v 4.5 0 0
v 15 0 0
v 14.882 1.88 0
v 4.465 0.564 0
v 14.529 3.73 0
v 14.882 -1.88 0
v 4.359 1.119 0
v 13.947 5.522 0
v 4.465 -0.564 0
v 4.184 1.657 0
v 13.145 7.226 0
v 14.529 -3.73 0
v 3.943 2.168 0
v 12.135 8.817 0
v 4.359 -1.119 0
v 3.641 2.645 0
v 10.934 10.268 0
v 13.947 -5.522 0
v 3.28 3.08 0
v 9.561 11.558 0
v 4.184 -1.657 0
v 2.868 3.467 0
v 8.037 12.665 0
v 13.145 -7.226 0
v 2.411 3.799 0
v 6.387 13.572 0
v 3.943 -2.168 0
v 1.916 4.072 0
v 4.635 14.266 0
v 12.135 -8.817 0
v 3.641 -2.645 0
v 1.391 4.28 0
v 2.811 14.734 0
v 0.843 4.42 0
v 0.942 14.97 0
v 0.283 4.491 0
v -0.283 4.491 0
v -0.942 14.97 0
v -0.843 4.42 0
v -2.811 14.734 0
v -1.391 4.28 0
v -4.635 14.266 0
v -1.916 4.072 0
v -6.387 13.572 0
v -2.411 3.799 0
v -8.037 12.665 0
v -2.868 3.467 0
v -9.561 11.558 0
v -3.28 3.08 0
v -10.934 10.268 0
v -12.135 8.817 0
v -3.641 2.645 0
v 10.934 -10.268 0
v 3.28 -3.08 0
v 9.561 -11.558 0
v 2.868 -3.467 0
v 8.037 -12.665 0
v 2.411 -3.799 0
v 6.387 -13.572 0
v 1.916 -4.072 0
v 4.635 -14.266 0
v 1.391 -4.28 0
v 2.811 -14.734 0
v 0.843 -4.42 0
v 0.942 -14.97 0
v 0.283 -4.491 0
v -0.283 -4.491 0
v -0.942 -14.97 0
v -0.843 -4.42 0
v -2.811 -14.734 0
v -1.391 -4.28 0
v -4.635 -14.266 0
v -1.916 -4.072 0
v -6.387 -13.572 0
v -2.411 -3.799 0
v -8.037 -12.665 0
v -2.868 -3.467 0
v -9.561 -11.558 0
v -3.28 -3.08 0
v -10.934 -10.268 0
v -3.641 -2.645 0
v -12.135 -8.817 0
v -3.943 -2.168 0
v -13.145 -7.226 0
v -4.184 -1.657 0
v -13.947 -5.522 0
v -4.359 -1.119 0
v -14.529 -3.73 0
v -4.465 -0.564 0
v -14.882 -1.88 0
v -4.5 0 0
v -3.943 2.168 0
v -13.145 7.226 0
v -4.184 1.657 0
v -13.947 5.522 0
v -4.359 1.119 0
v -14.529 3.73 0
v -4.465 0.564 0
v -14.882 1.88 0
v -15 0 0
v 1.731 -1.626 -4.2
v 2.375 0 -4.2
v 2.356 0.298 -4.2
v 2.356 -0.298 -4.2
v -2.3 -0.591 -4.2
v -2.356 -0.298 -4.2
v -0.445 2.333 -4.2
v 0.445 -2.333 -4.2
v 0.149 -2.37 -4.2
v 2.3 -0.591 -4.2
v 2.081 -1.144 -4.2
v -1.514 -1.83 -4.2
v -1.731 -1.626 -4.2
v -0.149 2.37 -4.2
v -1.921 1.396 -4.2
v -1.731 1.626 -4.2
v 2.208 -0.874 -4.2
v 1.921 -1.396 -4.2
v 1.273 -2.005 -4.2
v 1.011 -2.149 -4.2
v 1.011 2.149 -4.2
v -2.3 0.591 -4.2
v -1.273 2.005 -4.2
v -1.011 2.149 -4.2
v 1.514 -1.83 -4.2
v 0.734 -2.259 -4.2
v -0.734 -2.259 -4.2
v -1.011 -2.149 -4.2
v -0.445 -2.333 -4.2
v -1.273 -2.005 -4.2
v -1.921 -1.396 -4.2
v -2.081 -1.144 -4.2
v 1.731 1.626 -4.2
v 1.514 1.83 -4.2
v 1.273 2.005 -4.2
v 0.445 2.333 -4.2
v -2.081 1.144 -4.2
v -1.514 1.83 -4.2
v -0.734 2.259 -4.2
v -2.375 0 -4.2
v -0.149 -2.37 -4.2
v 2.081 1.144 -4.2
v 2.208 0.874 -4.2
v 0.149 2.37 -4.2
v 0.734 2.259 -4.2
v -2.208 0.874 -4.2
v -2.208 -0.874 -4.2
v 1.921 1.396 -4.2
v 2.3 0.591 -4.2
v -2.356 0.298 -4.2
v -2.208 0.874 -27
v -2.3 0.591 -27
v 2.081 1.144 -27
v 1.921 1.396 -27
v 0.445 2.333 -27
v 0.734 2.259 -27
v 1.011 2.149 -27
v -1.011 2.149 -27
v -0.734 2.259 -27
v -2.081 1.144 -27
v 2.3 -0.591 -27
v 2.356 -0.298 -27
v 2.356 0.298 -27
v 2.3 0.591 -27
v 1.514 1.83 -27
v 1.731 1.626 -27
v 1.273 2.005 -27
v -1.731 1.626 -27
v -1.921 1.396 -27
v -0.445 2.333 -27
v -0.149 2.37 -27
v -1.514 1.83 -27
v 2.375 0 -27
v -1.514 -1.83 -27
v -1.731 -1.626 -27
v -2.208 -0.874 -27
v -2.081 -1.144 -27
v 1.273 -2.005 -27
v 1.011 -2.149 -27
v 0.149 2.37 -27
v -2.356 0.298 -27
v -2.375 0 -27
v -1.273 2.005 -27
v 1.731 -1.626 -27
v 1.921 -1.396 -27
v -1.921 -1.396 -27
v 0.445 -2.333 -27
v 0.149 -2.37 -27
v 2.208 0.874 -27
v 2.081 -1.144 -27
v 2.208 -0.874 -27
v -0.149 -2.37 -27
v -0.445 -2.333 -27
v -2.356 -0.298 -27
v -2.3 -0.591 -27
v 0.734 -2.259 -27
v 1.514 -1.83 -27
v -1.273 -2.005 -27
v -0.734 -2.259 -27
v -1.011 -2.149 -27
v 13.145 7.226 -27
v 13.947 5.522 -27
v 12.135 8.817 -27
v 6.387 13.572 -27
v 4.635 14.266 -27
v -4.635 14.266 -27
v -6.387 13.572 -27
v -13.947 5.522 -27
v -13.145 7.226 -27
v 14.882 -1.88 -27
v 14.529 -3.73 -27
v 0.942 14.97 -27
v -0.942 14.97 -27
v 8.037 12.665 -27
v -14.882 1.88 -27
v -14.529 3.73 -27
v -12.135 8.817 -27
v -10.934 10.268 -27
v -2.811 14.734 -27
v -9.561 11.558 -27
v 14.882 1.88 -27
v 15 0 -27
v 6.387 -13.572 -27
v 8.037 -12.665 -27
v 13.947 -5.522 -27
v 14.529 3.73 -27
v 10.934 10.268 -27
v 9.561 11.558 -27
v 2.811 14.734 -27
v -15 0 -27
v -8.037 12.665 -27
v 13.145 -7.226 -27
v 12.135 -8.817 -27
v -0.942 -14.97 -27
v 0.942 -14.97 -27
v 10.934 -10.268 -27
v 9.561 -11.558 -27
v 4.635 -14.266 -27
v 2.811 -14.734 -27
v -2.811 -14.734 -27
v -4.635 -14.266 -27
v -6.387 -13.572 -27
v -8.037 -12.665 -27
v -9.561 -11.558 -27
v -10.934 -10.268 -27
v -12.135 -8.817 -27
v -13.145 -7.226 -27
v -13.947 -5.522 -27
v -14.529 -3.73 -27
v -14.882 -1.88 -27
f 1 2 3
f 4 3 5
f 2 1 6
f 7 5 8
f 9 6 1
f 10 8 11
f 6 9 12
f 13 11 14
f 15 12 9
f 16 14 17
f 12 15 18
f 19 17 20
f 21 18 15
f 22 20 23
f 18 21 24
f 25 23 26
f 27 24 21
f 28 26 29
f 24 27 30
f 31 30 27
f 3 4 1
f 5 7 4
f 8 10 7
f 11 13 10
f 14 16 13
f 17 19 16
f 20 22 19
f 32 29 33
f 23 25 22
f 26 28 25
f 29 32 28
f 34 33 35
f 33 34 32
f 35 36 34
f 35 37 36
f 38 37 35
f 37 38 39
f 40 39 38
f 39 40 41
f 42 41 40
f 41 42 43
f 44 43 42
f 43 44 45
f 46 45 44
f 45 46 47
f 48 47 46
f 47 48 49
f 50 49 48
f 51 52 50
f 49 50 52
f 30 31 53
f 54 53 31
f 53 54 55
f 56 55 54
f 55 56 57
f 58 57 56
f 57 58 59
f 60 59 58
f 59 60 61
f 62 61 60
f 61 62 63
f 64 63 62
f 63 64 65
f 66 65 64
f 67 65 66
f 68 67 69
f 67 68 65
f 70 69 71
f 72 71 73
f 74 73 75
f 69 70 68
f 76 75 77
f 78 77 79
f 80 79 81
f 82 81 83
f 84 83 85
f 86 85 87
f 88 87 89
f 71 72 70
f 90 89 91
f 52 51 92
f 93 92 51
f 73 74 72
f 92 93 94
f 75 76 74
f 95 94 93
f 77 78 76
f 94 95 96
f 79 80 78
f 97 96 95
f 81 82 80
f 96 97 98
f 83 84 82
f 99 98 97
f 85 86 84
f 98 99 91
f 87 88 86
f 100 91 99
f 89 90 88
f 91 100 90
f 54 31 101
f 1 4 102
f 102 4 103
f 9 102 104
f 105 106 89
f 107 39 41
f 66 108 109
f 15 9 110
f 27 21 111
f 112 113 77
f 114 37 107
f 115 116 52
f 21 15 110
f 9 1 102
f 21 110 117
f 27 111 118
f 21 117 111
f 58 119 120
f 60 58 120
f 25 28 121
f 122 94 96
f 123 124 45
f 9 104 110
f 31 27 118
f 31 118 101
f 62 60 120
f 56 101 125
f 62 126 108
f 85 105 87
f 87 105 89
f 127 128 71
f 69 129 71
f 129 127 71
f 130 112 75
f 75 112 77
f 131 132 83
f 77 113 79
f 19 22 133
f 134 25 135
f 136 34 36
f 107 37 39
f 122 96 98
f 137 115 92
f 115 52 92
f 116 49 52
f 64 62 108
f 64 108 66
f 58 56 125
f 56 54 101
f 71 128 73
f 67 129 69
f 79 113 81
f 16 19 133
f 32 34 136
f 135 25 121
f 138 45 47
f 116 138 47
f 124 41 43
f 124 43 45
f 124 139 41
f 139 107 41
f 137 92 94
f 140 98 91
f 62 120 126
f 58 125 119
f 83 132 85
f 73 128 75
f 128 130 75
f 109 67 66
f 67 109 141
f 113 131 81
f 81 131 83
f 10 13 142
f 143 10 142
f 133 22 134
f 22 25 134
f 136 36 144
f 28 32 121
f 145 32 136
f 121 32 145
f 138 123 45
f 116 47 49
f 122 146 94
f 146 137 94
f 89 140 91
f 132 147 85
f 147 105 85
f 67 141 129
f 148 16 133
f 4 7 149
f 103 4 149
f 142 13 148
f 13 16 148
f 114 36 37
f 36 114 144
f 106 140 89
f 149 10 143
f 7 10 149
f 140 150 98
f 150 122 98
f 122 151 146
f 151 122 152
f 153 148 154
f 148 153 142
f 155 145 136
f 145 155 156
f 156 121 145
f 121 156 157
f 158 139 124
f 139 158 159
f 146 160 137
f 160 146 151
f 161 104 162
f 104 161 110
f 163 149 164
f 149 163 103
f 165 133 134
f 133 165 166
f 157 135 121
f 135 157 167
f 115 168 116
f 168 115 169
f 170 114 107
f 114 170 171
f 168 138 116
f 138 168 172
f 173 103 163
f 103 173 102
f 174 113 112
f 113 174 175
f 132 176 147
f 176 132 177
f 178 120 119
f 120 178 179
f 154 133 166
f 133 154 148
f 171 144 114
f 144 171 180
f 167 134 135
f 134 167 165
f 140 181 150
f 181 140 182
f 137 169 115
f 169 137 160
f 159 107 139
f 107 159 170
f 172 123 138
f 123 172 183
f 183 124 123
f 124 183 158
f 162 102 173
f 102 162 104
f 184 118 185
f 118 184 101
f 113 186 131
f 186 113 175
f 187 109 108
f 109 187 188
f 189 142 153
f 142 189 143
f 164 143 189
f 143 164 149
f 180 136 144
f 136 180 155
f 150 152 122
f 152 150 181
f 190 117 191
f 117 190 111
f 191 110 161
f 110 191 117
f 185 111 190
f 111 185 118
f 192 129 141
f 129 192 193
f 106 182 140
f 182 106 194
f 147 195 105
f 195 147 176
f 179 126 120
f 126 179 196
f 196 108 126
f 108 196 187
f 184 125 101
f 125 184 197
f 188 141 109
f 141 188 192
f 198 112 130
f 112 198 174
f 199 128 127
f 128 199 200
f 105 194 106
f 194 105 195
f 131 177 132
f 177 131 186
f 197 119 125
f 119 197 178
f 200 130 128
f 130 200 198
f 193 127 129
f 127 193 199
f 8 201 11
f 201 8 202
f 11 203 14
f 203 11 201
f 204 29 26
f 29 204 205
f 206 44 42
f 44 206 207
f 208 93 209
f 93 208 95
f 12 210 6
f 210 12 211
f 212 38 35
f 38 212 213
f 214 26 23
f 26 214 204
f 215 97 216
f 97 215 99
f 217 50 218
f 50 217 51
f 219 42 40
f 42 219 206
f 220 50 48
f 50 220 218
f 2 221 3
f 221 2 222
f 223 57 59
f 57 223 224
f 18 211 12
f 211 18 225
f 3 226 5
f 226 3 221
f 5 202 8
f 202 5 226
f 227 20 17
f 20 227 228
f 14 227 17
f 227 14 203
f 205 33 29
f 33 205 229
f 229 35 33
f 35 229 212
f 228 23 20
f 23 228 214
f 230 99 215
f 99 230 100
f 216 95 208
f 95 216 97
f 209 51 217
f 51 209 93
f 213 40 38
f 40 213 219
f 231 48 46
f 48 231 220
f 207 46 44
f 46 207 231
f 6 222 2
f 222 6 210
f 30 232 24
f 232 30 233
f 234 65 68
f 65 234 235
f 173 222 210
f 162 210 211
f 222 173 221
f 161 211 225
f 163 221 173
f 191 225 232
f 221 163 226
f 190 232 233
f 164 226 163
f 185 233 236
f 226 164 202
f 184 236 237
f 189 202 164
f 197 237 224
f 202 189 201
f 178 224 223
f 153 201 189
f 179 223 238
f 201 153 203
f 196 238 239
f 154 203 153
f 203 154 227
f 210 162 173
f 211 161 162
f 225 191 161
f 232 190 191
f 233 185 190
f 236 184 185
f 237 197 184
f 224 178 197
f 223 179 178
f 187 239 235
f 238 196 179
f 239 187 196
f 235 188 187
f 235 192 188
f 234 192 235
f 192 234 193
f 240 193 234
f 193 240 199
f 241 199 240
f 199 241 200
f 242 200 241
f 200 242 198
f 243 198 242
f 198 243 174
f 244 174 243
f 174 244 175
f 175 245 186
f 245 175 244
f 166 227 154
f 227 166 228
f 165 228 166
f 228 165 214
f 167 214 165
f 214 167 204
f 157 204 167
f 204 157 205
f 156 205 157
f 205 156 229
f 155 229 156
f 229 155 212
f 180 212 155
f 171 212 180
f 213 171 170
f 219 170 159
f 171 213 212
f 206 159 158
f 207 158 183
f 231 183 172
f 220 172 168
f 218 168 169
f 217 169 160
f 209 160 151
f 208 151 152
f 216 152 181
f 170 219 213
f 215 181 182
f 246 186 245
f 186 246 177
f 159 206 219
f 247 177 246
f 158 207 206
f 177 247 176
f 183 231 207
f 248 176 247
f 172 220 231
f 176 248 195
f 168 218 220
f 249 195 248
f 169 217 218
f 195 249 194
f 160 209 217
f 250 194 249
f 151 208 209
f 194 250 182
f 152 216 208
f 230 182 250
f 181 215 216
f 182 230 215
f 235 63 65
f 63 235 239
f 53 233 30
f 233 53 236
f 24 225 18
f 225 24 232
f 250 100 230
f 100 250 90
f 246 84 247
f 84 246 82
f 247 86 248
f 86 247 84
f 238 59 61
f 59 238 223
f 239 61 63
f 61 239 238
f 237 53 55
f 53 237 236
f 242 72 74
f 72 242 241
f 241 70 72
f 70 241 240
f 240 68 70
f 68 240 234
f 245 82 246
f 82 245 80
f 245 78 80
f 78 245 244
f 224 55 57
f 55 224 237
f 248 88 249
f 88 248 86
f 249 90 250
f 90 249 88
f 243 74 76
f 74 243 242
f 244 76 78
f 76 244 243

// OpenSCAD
$fn = 50;

difference() {
	union() {
		translate(v = [0, 0, -27.0]) {
			cylinder(h = 27, r = 15.0);
		}
	}
	union() {
		translate(v = [0, 0, 0]) {
			rotate(a = [0, 0, 0]) {
				difference() {
					union() {
						translate(v = [0, 0, -30.0]) {
							cylinder(h = 30, r = 2.25);
						}
						translate(v = [0, 0, -4.2]) {
							cylinder(h = 4.2, r1 = 2.375, r2 = 4.5);
						}
						translate(v = [0, 0, -30.0]) {
							cylinder(h = 30, r = 2.375);
						}
						translate(v = [0, 0, -30.0]) {
							cylinder(h = 30, r = 2.25);
						}
					}
					union();
				}
			}
		}
	}
}
